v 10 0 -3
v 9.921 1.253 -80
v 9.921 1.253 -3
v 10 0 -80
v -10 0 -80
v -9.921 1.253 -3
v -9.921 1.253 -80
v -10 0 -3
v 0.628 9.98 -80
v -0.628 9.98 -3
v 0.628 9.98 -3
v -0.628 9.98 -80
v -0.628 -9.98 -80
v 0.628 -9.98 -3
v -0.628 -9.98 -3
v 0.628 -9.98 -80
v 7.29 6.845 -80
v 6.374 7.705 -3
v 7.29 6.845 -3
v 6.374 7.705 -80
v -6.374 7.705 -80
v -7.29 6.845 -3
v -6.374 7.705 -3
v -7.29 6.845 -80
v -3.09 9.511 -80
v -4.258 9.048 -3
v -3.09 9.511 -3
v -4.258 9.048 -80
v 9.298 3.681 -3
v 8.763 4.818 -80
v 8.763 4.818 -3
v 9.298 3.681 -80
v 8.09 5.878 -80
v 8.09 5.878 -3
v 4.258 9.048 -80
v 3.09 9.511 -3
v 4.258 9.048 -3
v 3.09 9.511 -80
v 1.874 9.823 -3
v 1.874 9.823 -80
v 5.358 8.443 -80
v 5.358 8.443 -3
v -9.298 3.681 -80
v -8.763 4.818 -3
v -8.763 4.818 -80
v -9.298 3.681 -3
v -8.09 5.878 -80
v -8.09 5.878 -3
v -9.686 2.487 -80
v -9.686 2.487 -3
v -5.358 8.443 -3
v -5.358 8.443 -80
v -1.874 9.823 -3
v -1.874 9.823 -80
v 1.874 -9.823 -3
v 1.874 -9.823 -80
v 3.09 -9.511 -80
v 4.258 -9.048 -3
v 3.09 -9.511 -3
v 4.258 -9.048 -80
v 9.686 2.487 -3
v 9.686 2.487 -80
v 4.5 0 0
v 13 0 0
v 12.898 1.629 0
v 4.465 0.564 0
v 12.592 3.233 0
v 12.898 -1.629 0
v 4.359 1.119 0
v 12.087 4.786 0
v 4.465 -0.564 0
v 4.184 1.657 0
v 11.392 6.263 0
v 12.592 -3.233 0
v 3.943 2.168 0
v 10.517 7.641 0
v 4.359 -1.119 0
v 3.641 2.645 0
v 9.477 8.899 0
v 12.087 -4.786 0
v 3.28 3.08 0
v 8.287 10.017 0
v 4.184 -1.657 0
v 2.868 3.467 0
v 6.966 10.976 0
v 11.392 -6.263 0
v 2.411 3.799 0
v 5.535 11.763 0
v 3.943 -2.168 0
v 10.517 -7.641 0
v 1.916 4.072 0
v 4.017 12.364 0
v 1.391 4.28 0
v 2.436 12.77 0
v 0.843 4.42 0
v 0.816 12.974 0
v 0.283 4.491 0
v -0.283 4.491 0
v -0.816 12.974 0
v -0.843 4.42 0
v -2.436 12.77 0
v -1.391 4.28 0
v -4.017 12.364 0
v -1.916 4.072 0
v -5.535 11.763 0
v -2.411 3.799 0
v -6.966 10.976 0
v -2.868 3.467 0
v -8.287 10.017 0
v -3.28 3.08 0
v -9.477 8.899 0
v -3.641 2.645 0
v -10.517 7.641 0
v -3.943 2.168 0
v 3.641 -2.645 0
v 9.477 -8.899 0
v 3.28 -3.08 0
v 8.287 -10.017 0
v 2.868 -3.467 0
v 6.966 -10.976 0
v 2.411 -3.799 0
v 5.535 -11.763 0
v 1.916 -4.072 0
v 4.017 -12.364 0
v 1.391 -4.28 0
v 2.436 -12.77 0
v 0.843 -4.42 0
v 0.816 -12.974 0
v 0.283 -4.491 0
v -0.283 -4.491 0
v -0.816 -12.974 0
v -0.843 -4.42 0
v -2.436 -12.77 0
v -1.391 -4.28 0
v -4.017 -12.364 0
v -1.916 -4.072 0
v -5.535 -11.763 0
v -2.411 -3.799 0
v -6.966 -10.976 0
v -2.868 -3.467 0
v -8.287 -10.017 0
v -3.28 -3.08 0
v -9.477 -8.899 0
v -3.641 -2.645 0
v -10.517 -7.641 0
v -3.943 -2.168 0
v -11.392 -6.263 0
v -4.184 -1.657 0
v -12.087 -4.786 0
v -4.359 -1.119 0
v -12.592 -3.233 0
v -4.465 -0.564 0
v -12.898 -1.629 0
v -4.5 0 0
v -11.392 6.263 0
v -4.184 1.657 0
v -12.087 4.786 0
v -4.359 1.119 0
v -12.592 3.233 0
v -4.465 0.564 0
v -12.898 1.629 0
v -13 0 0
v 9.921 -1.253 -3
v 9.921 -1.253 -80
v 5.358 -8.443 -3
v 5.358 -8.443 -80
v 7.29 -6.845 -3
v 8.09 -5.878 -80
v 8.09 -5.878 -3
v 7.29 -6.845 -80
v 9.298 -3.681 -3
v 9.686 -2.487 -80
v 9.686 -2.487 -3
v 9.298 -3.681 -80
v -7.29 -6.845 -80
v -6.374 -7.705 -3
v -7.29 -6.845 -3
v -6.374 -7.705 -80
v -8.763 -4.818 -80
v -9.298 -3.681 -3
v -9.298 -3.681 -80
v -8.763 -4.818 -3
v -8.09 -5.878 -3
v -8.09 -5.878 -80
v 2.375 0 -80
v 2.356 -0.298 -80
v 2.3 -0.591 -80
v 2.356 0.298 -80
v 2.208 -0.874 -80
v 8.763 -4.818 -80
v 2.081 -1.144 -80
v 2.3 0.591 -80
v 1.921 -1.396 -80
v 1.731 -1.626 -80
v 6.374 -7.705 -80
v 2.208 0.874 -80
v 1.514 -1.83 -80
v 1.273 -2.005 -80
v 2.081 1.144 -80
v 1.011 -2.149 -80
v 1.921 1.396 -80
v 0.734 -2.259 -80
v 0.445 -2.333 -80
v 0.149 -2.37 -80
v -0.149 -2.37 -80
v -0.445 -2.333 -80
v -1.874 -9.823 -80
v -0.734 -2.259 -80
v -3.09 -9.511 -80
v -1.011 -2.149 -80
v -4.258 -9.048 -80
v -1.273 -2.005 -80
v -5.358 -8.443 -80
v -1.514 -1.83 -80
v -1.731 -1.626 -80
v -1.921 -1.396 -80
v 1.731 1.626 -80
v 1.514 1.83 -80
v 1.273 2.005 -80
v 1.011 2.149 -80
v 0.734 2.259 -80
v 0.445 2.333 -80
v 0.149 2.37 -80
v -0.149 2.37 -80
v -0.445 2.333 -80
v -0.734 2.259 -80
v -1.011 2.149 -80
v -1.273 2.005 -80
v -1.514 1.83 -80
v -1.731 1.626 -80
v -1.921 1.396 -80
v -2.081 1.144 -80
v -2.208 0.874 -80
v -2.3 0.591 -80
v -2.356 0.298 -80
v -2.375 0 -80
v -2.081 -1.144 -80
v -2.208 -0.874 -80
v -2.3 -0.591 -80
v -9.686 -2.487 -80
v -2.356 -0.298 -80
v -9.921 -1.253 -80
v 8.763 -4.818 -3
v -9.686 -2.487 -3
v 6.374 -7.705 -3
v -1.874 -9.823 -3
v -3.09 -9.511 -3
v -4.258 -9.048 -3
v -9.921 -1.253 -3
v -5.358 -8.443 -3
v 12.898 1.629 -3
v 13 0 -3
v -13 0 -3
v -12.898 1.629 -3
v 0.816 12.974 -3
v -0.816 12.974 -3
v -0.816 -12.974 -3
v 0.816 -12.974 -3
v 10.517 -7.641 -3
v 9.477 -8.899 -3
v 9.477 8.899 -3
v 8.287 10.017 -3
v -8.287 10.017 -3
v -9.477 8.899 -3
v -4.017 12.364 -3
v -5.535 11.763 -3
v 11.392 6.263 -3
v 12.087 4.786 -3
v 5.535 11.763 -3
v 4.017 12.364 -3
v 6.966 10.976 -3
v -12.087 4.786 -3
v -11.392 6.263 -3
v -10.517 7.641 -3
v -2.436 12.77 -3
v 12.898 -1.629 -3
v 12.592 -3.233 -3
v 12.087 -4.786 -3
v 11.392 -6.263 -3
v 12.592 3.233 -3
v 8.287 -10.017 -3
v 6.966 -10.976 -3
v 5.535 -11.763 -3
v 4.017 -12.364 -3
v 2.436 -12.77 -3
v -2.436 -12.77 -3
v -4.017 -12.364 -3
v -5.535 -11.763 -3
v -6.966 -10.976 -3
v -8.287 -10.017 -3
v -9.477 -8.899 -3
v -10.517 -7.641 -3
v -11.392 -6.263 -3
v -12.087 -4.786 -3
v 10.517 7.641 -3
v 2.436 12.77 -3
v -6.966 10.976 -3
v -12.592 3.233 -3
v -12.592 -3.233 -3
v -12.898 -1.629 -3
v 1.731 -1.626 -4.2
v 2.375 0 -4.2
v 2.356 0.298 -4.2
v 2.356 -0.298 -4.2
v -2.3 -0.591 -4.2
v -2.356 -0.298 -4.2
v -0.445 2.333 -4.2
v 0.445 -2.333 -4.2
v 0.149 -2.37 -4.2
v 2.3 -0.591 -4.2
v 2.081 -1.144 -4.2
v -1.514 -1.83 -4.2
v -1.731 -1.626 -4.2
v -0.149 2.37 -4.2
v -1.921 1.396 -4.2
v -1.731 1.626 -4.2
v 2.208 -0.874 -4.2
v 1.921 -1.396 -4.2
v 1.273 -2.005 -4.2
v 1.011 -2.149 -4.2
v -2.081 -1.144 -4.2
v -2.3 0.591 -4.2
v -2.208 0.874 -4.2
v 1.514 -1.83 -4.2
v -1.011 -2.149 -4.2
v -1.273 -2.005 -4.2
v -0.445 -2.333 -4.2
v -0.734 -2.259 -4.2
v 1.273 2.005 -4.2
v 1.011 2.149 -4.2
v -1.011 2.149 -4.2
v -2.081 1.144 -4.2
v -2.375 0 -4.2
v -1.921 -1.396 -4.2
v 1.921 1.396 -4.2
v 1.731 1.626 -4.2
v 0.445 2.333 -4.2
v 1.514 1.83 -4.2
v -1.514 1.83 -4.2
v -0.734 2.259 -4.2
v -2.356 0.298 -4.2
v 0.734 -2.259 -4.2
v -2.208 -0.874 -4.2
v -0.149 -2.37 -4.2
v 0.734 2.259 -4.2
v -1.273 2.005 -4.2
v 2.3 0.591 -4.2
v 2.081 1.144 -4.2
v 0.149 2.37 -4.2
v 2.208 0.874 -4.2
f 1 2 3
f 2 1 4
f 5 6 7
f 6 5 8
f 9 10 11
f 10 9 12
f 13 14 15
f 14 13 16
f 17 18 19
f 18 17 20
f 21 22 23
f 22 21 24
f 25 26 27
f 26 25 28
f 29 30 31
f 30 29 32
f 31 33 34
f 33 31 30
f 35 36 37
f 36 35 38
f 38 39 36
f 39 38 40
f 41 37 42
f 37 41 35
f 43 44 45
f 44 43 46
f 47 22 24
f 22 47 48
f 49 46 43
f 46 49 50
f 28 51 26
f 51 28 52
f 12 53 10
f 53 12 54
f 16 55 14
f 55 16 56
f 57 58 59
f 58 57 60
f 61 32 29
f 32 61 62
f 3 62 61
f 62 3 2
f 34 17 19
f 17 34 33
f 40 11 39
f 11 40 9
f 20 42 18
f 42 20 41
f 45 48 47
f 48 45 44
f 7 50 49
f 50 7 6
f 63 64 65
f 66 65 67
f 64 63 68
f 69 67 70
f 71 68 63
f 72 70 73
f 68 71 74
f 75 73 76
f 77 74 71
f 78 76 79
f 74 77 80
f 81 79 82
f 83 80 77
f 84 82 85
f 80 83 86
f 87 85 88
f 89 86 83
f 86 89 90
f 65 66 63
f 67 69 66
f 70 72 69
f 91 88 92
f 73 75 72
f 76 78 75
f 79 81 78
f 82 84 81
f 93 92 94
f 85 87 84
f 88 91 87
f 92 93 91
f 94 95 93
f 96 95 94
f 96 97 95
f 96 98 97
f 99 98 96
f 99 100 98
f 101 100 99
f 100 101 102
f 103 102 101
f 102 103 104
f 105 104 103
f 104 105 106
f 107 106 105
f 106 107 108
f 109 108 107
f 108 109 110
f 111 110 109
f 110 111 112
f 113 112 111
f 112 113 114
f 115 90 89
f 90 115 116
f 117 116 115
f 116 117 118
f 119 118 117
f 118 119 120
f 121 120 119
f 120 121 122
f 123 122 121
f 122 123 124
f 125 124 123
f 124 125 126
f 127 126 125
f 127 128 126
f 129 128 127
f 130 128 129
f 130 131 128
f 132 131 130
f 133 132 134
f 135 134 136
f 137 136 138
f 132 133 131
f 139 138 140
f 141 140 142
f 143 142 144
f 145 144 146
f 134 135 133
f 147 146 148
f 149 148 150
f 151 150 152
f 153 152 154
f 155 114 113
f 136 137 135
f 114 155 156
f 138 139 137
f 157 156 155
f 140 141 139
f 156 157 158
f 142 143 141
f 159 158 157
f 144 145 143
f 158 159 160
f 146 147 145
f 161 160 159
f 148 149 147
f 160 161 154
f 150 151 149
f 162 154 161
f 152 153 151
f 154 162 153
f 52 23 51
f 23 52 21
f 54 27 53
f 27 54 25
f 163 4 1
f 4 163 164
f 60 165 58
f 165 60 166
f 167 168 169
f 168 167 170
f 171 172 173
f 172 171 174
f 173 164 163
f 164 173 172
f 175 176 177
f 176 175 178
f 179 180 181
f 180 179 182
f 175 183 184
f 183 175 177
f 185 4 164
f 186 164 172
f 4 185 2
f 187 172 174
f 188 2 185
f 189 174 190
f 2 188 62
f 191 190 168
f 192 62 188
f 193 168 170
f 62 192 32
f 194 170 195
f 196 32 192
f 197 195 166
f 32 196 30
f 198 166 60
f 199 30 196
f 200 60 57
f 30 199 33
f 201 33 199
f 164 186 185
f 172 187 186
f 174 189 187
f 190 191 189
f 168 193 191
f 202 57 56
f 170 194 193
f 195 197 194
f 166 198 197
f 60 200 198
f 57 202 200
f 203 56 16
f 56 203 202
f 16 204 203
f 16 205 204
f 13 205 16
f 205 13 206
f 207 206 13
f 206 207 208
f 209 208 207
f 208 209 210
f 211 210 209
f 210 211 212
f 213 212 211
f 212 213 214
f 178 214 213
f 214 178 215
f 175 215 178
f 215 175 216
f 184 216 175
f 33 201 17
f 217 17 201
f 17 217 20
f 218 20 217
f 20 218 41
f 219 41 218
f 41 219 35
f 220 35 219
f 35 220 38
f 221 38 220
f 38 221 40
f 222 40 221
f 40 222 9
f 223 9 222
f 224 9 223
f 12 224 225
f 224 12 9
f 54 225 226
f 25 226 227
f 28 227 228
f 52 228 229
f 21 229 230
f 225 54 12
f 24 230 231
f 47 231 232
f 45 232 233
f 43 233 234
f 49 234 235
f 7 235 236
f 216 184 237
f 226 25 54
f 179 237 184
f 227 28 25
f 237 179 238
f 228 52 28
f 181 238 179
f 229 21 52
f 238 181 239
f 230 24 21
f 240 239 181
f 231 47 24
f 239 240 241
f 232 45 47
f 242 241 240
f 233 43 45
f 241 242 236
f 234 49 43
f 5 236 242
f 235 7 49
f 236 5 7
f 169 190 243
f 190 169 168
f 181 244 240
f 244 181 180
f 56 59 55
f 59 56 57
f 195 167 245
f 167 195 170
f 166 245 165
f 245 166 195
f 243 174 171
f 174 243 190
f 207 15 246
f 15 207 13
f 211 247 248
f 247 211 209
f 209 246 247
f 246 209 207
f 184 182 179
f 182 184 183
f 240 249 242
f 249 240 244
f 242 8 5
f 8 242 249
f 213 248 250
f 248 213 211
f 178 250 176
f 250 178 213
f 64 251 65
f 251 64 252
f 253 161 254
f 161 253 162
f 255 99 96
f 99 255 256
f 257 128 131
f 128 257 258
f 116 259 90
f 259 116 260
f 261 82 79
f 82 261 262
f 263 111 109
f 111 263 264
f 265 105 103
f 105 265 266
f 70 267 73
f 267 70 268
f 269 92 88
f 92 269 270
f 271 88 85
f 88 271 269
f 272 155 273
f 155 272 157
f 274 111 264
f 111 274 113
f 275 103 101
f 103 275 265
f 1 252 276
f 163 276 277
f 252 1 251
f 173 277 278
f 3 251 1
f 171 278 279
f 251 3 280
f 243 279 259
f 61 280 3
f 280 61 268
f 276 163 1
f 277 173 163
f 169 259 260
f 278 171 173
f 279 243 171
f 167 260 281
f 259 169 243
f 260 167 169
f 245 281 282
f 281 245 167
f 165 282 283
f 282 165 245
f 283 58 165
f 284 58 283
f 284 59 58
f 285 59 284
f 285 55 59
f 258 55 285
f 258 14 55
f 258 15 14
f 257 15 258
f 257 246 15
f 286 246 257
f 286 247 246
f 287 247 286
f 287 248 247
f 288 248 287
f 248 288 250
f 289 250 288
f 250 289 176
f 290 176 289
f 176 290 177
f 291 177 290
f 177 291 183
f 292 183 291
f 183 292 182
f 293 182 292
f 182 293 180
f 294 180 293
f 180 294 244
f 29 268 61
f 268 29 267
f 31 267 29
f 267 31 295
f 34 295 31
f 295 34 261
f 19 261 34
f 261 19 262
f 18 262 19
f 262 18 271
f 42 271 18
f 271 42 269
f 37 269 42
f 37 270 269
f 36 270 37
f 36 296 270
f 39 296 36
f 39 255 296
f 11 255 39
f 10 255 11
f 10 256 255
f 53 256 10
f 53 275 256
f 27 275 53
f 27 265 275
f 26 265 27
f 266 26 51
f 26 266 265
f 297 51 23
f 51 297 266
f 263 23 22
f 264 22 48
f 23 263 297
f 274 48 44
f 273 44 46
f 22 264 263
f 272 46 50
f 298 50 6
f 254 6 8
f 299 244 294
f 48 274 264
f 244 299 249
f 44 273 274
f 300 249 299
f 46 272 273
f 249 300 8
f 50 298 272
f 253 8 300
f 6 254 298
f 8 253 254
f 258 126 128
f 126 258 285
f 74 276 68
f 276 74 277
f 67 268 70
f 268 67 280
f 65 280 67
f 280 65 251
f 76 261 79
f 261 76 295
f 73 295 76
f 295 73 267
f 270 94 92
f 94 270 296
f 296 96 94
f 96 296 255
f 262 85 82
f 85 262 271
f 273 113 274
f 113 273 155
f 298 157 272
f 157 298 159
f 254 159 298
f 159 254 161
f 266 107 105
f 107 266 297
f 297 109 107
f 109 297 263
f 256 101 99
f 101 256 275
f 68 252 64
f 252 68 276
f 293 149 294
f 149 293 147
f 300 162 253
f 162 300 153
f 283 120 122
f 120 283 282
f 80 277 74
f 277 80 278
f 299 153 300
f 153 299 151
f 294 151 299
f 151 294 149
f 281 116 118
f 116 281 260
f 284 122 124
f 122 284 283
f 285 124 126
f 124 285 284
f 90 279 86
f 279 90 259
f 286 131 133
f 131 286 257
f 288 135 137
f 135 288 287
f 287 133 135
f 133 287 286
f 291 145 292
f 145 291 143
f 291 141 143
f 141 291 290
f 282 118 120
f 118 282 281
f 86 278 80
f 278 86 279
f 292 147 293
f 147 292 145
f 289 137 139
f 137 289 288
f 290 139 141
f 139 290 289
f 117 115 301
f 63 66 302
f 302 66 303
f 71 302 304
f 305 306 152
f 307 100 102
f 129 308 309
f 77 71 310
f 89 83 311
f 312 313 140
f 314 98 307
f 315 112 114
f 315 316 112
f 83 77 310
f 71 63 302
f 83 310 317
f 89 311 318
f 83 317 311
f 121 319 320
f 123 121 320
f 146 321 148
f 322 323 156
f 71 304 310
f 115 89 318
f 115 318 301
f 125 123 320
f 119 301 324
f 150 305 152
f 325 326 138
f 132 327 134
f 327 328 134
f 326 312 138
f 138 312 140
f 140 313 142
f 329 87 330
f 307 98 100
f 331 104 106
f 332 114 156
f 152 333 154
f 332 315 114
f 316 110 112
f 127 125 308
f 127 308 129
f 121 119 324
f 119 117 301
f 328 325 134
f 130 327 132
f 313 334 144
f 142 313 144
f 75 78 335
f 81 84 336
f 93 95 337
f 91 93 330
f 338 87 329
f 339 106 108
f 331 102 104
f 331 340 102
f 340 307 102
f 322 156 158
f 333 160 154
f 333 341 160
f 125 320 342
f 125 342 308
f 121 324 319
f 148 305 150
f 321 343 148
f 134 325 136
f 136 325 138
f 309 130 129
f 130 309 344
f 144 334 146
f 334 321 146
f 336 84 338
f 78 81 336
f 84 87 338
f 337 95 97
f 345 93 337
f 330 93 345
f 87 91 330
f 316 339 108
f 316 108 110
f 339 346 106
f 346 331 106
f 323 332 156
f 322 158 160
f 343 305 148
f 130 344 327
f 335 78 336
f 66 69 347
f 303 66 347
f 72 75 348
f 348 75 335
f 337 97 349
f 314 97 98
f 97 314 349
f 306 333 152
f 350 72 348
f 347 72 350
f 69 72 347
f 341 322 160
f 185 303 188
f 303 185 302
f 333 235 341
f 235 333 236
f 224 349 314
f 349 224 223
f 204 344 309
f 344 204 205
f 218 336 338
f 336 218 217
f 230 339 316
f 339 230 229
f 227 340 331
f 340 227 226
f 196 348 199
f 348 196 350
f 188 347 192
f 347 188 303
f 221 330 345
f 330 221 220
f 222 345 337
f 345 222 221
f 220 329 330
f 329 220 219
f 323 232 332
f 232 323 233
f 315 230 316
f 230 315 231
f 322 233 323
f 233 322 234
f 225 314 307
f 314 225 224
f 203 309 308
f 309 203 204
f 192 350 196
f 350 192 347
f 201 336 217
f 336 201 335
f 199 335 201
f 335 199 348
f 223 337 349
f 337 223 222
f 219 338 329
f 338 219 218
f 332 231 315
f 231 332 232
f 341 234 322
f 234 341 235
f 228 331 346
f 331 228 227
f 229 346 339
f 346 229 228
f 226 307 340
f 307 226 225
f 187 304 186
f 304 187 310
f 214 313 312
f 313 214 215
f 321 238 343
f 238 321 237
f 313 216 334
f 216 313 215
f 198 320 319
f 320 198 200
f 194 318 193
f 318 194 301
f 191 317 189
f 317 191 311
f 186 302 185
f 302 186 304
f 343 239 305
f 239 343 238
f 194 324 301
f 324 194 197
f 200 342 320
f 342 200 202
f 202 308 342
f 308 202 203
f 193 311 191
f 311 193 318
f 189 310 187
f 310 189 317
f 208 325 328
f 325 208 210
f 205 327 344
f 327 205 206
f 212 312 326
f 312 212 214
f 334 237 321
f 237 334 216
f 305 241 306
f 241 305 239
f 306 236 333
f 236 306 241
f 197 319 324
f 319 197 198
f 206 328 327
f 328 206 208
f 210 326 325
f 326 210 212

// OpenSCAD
$fn = 50;


difference() {
	union() {
		translate(v = [0, 0, -80.0000000000]) {
			cylinder(h = 80, r = 10.0000000000);
		}
		translate(v = [0, 0, -3.0000000000]) {
			cylinder(h = 3, r = 13.0000000000);
		}
	}
	union() {
		translate(v = [0, 0, 0]) {
			rotate(a = [0, 0, 0]) {
				difference() {
					union() {
						#translate(v = [0, 0, -80.0000000000]) {
							cylinder(h = 80, r = 2.2500000000);
						}
						#translate(v = [0, 0, -4.2000000000]) {
							cylinder(h = 4.2000000000, r1 = 2.3750000000, r2 = 4.5000000000);
						}
						#translate(v = [0, 0, -80.0000000000]) {
							cylinder(h = 80, r = 2.3750000000);
						}
						#translate(v = [0, 0, -80.0000000000]) {
							cylinder(h = 80, r = 2.2500000000);
						}
					}
					union();
				}
			}
		}
	}
}
